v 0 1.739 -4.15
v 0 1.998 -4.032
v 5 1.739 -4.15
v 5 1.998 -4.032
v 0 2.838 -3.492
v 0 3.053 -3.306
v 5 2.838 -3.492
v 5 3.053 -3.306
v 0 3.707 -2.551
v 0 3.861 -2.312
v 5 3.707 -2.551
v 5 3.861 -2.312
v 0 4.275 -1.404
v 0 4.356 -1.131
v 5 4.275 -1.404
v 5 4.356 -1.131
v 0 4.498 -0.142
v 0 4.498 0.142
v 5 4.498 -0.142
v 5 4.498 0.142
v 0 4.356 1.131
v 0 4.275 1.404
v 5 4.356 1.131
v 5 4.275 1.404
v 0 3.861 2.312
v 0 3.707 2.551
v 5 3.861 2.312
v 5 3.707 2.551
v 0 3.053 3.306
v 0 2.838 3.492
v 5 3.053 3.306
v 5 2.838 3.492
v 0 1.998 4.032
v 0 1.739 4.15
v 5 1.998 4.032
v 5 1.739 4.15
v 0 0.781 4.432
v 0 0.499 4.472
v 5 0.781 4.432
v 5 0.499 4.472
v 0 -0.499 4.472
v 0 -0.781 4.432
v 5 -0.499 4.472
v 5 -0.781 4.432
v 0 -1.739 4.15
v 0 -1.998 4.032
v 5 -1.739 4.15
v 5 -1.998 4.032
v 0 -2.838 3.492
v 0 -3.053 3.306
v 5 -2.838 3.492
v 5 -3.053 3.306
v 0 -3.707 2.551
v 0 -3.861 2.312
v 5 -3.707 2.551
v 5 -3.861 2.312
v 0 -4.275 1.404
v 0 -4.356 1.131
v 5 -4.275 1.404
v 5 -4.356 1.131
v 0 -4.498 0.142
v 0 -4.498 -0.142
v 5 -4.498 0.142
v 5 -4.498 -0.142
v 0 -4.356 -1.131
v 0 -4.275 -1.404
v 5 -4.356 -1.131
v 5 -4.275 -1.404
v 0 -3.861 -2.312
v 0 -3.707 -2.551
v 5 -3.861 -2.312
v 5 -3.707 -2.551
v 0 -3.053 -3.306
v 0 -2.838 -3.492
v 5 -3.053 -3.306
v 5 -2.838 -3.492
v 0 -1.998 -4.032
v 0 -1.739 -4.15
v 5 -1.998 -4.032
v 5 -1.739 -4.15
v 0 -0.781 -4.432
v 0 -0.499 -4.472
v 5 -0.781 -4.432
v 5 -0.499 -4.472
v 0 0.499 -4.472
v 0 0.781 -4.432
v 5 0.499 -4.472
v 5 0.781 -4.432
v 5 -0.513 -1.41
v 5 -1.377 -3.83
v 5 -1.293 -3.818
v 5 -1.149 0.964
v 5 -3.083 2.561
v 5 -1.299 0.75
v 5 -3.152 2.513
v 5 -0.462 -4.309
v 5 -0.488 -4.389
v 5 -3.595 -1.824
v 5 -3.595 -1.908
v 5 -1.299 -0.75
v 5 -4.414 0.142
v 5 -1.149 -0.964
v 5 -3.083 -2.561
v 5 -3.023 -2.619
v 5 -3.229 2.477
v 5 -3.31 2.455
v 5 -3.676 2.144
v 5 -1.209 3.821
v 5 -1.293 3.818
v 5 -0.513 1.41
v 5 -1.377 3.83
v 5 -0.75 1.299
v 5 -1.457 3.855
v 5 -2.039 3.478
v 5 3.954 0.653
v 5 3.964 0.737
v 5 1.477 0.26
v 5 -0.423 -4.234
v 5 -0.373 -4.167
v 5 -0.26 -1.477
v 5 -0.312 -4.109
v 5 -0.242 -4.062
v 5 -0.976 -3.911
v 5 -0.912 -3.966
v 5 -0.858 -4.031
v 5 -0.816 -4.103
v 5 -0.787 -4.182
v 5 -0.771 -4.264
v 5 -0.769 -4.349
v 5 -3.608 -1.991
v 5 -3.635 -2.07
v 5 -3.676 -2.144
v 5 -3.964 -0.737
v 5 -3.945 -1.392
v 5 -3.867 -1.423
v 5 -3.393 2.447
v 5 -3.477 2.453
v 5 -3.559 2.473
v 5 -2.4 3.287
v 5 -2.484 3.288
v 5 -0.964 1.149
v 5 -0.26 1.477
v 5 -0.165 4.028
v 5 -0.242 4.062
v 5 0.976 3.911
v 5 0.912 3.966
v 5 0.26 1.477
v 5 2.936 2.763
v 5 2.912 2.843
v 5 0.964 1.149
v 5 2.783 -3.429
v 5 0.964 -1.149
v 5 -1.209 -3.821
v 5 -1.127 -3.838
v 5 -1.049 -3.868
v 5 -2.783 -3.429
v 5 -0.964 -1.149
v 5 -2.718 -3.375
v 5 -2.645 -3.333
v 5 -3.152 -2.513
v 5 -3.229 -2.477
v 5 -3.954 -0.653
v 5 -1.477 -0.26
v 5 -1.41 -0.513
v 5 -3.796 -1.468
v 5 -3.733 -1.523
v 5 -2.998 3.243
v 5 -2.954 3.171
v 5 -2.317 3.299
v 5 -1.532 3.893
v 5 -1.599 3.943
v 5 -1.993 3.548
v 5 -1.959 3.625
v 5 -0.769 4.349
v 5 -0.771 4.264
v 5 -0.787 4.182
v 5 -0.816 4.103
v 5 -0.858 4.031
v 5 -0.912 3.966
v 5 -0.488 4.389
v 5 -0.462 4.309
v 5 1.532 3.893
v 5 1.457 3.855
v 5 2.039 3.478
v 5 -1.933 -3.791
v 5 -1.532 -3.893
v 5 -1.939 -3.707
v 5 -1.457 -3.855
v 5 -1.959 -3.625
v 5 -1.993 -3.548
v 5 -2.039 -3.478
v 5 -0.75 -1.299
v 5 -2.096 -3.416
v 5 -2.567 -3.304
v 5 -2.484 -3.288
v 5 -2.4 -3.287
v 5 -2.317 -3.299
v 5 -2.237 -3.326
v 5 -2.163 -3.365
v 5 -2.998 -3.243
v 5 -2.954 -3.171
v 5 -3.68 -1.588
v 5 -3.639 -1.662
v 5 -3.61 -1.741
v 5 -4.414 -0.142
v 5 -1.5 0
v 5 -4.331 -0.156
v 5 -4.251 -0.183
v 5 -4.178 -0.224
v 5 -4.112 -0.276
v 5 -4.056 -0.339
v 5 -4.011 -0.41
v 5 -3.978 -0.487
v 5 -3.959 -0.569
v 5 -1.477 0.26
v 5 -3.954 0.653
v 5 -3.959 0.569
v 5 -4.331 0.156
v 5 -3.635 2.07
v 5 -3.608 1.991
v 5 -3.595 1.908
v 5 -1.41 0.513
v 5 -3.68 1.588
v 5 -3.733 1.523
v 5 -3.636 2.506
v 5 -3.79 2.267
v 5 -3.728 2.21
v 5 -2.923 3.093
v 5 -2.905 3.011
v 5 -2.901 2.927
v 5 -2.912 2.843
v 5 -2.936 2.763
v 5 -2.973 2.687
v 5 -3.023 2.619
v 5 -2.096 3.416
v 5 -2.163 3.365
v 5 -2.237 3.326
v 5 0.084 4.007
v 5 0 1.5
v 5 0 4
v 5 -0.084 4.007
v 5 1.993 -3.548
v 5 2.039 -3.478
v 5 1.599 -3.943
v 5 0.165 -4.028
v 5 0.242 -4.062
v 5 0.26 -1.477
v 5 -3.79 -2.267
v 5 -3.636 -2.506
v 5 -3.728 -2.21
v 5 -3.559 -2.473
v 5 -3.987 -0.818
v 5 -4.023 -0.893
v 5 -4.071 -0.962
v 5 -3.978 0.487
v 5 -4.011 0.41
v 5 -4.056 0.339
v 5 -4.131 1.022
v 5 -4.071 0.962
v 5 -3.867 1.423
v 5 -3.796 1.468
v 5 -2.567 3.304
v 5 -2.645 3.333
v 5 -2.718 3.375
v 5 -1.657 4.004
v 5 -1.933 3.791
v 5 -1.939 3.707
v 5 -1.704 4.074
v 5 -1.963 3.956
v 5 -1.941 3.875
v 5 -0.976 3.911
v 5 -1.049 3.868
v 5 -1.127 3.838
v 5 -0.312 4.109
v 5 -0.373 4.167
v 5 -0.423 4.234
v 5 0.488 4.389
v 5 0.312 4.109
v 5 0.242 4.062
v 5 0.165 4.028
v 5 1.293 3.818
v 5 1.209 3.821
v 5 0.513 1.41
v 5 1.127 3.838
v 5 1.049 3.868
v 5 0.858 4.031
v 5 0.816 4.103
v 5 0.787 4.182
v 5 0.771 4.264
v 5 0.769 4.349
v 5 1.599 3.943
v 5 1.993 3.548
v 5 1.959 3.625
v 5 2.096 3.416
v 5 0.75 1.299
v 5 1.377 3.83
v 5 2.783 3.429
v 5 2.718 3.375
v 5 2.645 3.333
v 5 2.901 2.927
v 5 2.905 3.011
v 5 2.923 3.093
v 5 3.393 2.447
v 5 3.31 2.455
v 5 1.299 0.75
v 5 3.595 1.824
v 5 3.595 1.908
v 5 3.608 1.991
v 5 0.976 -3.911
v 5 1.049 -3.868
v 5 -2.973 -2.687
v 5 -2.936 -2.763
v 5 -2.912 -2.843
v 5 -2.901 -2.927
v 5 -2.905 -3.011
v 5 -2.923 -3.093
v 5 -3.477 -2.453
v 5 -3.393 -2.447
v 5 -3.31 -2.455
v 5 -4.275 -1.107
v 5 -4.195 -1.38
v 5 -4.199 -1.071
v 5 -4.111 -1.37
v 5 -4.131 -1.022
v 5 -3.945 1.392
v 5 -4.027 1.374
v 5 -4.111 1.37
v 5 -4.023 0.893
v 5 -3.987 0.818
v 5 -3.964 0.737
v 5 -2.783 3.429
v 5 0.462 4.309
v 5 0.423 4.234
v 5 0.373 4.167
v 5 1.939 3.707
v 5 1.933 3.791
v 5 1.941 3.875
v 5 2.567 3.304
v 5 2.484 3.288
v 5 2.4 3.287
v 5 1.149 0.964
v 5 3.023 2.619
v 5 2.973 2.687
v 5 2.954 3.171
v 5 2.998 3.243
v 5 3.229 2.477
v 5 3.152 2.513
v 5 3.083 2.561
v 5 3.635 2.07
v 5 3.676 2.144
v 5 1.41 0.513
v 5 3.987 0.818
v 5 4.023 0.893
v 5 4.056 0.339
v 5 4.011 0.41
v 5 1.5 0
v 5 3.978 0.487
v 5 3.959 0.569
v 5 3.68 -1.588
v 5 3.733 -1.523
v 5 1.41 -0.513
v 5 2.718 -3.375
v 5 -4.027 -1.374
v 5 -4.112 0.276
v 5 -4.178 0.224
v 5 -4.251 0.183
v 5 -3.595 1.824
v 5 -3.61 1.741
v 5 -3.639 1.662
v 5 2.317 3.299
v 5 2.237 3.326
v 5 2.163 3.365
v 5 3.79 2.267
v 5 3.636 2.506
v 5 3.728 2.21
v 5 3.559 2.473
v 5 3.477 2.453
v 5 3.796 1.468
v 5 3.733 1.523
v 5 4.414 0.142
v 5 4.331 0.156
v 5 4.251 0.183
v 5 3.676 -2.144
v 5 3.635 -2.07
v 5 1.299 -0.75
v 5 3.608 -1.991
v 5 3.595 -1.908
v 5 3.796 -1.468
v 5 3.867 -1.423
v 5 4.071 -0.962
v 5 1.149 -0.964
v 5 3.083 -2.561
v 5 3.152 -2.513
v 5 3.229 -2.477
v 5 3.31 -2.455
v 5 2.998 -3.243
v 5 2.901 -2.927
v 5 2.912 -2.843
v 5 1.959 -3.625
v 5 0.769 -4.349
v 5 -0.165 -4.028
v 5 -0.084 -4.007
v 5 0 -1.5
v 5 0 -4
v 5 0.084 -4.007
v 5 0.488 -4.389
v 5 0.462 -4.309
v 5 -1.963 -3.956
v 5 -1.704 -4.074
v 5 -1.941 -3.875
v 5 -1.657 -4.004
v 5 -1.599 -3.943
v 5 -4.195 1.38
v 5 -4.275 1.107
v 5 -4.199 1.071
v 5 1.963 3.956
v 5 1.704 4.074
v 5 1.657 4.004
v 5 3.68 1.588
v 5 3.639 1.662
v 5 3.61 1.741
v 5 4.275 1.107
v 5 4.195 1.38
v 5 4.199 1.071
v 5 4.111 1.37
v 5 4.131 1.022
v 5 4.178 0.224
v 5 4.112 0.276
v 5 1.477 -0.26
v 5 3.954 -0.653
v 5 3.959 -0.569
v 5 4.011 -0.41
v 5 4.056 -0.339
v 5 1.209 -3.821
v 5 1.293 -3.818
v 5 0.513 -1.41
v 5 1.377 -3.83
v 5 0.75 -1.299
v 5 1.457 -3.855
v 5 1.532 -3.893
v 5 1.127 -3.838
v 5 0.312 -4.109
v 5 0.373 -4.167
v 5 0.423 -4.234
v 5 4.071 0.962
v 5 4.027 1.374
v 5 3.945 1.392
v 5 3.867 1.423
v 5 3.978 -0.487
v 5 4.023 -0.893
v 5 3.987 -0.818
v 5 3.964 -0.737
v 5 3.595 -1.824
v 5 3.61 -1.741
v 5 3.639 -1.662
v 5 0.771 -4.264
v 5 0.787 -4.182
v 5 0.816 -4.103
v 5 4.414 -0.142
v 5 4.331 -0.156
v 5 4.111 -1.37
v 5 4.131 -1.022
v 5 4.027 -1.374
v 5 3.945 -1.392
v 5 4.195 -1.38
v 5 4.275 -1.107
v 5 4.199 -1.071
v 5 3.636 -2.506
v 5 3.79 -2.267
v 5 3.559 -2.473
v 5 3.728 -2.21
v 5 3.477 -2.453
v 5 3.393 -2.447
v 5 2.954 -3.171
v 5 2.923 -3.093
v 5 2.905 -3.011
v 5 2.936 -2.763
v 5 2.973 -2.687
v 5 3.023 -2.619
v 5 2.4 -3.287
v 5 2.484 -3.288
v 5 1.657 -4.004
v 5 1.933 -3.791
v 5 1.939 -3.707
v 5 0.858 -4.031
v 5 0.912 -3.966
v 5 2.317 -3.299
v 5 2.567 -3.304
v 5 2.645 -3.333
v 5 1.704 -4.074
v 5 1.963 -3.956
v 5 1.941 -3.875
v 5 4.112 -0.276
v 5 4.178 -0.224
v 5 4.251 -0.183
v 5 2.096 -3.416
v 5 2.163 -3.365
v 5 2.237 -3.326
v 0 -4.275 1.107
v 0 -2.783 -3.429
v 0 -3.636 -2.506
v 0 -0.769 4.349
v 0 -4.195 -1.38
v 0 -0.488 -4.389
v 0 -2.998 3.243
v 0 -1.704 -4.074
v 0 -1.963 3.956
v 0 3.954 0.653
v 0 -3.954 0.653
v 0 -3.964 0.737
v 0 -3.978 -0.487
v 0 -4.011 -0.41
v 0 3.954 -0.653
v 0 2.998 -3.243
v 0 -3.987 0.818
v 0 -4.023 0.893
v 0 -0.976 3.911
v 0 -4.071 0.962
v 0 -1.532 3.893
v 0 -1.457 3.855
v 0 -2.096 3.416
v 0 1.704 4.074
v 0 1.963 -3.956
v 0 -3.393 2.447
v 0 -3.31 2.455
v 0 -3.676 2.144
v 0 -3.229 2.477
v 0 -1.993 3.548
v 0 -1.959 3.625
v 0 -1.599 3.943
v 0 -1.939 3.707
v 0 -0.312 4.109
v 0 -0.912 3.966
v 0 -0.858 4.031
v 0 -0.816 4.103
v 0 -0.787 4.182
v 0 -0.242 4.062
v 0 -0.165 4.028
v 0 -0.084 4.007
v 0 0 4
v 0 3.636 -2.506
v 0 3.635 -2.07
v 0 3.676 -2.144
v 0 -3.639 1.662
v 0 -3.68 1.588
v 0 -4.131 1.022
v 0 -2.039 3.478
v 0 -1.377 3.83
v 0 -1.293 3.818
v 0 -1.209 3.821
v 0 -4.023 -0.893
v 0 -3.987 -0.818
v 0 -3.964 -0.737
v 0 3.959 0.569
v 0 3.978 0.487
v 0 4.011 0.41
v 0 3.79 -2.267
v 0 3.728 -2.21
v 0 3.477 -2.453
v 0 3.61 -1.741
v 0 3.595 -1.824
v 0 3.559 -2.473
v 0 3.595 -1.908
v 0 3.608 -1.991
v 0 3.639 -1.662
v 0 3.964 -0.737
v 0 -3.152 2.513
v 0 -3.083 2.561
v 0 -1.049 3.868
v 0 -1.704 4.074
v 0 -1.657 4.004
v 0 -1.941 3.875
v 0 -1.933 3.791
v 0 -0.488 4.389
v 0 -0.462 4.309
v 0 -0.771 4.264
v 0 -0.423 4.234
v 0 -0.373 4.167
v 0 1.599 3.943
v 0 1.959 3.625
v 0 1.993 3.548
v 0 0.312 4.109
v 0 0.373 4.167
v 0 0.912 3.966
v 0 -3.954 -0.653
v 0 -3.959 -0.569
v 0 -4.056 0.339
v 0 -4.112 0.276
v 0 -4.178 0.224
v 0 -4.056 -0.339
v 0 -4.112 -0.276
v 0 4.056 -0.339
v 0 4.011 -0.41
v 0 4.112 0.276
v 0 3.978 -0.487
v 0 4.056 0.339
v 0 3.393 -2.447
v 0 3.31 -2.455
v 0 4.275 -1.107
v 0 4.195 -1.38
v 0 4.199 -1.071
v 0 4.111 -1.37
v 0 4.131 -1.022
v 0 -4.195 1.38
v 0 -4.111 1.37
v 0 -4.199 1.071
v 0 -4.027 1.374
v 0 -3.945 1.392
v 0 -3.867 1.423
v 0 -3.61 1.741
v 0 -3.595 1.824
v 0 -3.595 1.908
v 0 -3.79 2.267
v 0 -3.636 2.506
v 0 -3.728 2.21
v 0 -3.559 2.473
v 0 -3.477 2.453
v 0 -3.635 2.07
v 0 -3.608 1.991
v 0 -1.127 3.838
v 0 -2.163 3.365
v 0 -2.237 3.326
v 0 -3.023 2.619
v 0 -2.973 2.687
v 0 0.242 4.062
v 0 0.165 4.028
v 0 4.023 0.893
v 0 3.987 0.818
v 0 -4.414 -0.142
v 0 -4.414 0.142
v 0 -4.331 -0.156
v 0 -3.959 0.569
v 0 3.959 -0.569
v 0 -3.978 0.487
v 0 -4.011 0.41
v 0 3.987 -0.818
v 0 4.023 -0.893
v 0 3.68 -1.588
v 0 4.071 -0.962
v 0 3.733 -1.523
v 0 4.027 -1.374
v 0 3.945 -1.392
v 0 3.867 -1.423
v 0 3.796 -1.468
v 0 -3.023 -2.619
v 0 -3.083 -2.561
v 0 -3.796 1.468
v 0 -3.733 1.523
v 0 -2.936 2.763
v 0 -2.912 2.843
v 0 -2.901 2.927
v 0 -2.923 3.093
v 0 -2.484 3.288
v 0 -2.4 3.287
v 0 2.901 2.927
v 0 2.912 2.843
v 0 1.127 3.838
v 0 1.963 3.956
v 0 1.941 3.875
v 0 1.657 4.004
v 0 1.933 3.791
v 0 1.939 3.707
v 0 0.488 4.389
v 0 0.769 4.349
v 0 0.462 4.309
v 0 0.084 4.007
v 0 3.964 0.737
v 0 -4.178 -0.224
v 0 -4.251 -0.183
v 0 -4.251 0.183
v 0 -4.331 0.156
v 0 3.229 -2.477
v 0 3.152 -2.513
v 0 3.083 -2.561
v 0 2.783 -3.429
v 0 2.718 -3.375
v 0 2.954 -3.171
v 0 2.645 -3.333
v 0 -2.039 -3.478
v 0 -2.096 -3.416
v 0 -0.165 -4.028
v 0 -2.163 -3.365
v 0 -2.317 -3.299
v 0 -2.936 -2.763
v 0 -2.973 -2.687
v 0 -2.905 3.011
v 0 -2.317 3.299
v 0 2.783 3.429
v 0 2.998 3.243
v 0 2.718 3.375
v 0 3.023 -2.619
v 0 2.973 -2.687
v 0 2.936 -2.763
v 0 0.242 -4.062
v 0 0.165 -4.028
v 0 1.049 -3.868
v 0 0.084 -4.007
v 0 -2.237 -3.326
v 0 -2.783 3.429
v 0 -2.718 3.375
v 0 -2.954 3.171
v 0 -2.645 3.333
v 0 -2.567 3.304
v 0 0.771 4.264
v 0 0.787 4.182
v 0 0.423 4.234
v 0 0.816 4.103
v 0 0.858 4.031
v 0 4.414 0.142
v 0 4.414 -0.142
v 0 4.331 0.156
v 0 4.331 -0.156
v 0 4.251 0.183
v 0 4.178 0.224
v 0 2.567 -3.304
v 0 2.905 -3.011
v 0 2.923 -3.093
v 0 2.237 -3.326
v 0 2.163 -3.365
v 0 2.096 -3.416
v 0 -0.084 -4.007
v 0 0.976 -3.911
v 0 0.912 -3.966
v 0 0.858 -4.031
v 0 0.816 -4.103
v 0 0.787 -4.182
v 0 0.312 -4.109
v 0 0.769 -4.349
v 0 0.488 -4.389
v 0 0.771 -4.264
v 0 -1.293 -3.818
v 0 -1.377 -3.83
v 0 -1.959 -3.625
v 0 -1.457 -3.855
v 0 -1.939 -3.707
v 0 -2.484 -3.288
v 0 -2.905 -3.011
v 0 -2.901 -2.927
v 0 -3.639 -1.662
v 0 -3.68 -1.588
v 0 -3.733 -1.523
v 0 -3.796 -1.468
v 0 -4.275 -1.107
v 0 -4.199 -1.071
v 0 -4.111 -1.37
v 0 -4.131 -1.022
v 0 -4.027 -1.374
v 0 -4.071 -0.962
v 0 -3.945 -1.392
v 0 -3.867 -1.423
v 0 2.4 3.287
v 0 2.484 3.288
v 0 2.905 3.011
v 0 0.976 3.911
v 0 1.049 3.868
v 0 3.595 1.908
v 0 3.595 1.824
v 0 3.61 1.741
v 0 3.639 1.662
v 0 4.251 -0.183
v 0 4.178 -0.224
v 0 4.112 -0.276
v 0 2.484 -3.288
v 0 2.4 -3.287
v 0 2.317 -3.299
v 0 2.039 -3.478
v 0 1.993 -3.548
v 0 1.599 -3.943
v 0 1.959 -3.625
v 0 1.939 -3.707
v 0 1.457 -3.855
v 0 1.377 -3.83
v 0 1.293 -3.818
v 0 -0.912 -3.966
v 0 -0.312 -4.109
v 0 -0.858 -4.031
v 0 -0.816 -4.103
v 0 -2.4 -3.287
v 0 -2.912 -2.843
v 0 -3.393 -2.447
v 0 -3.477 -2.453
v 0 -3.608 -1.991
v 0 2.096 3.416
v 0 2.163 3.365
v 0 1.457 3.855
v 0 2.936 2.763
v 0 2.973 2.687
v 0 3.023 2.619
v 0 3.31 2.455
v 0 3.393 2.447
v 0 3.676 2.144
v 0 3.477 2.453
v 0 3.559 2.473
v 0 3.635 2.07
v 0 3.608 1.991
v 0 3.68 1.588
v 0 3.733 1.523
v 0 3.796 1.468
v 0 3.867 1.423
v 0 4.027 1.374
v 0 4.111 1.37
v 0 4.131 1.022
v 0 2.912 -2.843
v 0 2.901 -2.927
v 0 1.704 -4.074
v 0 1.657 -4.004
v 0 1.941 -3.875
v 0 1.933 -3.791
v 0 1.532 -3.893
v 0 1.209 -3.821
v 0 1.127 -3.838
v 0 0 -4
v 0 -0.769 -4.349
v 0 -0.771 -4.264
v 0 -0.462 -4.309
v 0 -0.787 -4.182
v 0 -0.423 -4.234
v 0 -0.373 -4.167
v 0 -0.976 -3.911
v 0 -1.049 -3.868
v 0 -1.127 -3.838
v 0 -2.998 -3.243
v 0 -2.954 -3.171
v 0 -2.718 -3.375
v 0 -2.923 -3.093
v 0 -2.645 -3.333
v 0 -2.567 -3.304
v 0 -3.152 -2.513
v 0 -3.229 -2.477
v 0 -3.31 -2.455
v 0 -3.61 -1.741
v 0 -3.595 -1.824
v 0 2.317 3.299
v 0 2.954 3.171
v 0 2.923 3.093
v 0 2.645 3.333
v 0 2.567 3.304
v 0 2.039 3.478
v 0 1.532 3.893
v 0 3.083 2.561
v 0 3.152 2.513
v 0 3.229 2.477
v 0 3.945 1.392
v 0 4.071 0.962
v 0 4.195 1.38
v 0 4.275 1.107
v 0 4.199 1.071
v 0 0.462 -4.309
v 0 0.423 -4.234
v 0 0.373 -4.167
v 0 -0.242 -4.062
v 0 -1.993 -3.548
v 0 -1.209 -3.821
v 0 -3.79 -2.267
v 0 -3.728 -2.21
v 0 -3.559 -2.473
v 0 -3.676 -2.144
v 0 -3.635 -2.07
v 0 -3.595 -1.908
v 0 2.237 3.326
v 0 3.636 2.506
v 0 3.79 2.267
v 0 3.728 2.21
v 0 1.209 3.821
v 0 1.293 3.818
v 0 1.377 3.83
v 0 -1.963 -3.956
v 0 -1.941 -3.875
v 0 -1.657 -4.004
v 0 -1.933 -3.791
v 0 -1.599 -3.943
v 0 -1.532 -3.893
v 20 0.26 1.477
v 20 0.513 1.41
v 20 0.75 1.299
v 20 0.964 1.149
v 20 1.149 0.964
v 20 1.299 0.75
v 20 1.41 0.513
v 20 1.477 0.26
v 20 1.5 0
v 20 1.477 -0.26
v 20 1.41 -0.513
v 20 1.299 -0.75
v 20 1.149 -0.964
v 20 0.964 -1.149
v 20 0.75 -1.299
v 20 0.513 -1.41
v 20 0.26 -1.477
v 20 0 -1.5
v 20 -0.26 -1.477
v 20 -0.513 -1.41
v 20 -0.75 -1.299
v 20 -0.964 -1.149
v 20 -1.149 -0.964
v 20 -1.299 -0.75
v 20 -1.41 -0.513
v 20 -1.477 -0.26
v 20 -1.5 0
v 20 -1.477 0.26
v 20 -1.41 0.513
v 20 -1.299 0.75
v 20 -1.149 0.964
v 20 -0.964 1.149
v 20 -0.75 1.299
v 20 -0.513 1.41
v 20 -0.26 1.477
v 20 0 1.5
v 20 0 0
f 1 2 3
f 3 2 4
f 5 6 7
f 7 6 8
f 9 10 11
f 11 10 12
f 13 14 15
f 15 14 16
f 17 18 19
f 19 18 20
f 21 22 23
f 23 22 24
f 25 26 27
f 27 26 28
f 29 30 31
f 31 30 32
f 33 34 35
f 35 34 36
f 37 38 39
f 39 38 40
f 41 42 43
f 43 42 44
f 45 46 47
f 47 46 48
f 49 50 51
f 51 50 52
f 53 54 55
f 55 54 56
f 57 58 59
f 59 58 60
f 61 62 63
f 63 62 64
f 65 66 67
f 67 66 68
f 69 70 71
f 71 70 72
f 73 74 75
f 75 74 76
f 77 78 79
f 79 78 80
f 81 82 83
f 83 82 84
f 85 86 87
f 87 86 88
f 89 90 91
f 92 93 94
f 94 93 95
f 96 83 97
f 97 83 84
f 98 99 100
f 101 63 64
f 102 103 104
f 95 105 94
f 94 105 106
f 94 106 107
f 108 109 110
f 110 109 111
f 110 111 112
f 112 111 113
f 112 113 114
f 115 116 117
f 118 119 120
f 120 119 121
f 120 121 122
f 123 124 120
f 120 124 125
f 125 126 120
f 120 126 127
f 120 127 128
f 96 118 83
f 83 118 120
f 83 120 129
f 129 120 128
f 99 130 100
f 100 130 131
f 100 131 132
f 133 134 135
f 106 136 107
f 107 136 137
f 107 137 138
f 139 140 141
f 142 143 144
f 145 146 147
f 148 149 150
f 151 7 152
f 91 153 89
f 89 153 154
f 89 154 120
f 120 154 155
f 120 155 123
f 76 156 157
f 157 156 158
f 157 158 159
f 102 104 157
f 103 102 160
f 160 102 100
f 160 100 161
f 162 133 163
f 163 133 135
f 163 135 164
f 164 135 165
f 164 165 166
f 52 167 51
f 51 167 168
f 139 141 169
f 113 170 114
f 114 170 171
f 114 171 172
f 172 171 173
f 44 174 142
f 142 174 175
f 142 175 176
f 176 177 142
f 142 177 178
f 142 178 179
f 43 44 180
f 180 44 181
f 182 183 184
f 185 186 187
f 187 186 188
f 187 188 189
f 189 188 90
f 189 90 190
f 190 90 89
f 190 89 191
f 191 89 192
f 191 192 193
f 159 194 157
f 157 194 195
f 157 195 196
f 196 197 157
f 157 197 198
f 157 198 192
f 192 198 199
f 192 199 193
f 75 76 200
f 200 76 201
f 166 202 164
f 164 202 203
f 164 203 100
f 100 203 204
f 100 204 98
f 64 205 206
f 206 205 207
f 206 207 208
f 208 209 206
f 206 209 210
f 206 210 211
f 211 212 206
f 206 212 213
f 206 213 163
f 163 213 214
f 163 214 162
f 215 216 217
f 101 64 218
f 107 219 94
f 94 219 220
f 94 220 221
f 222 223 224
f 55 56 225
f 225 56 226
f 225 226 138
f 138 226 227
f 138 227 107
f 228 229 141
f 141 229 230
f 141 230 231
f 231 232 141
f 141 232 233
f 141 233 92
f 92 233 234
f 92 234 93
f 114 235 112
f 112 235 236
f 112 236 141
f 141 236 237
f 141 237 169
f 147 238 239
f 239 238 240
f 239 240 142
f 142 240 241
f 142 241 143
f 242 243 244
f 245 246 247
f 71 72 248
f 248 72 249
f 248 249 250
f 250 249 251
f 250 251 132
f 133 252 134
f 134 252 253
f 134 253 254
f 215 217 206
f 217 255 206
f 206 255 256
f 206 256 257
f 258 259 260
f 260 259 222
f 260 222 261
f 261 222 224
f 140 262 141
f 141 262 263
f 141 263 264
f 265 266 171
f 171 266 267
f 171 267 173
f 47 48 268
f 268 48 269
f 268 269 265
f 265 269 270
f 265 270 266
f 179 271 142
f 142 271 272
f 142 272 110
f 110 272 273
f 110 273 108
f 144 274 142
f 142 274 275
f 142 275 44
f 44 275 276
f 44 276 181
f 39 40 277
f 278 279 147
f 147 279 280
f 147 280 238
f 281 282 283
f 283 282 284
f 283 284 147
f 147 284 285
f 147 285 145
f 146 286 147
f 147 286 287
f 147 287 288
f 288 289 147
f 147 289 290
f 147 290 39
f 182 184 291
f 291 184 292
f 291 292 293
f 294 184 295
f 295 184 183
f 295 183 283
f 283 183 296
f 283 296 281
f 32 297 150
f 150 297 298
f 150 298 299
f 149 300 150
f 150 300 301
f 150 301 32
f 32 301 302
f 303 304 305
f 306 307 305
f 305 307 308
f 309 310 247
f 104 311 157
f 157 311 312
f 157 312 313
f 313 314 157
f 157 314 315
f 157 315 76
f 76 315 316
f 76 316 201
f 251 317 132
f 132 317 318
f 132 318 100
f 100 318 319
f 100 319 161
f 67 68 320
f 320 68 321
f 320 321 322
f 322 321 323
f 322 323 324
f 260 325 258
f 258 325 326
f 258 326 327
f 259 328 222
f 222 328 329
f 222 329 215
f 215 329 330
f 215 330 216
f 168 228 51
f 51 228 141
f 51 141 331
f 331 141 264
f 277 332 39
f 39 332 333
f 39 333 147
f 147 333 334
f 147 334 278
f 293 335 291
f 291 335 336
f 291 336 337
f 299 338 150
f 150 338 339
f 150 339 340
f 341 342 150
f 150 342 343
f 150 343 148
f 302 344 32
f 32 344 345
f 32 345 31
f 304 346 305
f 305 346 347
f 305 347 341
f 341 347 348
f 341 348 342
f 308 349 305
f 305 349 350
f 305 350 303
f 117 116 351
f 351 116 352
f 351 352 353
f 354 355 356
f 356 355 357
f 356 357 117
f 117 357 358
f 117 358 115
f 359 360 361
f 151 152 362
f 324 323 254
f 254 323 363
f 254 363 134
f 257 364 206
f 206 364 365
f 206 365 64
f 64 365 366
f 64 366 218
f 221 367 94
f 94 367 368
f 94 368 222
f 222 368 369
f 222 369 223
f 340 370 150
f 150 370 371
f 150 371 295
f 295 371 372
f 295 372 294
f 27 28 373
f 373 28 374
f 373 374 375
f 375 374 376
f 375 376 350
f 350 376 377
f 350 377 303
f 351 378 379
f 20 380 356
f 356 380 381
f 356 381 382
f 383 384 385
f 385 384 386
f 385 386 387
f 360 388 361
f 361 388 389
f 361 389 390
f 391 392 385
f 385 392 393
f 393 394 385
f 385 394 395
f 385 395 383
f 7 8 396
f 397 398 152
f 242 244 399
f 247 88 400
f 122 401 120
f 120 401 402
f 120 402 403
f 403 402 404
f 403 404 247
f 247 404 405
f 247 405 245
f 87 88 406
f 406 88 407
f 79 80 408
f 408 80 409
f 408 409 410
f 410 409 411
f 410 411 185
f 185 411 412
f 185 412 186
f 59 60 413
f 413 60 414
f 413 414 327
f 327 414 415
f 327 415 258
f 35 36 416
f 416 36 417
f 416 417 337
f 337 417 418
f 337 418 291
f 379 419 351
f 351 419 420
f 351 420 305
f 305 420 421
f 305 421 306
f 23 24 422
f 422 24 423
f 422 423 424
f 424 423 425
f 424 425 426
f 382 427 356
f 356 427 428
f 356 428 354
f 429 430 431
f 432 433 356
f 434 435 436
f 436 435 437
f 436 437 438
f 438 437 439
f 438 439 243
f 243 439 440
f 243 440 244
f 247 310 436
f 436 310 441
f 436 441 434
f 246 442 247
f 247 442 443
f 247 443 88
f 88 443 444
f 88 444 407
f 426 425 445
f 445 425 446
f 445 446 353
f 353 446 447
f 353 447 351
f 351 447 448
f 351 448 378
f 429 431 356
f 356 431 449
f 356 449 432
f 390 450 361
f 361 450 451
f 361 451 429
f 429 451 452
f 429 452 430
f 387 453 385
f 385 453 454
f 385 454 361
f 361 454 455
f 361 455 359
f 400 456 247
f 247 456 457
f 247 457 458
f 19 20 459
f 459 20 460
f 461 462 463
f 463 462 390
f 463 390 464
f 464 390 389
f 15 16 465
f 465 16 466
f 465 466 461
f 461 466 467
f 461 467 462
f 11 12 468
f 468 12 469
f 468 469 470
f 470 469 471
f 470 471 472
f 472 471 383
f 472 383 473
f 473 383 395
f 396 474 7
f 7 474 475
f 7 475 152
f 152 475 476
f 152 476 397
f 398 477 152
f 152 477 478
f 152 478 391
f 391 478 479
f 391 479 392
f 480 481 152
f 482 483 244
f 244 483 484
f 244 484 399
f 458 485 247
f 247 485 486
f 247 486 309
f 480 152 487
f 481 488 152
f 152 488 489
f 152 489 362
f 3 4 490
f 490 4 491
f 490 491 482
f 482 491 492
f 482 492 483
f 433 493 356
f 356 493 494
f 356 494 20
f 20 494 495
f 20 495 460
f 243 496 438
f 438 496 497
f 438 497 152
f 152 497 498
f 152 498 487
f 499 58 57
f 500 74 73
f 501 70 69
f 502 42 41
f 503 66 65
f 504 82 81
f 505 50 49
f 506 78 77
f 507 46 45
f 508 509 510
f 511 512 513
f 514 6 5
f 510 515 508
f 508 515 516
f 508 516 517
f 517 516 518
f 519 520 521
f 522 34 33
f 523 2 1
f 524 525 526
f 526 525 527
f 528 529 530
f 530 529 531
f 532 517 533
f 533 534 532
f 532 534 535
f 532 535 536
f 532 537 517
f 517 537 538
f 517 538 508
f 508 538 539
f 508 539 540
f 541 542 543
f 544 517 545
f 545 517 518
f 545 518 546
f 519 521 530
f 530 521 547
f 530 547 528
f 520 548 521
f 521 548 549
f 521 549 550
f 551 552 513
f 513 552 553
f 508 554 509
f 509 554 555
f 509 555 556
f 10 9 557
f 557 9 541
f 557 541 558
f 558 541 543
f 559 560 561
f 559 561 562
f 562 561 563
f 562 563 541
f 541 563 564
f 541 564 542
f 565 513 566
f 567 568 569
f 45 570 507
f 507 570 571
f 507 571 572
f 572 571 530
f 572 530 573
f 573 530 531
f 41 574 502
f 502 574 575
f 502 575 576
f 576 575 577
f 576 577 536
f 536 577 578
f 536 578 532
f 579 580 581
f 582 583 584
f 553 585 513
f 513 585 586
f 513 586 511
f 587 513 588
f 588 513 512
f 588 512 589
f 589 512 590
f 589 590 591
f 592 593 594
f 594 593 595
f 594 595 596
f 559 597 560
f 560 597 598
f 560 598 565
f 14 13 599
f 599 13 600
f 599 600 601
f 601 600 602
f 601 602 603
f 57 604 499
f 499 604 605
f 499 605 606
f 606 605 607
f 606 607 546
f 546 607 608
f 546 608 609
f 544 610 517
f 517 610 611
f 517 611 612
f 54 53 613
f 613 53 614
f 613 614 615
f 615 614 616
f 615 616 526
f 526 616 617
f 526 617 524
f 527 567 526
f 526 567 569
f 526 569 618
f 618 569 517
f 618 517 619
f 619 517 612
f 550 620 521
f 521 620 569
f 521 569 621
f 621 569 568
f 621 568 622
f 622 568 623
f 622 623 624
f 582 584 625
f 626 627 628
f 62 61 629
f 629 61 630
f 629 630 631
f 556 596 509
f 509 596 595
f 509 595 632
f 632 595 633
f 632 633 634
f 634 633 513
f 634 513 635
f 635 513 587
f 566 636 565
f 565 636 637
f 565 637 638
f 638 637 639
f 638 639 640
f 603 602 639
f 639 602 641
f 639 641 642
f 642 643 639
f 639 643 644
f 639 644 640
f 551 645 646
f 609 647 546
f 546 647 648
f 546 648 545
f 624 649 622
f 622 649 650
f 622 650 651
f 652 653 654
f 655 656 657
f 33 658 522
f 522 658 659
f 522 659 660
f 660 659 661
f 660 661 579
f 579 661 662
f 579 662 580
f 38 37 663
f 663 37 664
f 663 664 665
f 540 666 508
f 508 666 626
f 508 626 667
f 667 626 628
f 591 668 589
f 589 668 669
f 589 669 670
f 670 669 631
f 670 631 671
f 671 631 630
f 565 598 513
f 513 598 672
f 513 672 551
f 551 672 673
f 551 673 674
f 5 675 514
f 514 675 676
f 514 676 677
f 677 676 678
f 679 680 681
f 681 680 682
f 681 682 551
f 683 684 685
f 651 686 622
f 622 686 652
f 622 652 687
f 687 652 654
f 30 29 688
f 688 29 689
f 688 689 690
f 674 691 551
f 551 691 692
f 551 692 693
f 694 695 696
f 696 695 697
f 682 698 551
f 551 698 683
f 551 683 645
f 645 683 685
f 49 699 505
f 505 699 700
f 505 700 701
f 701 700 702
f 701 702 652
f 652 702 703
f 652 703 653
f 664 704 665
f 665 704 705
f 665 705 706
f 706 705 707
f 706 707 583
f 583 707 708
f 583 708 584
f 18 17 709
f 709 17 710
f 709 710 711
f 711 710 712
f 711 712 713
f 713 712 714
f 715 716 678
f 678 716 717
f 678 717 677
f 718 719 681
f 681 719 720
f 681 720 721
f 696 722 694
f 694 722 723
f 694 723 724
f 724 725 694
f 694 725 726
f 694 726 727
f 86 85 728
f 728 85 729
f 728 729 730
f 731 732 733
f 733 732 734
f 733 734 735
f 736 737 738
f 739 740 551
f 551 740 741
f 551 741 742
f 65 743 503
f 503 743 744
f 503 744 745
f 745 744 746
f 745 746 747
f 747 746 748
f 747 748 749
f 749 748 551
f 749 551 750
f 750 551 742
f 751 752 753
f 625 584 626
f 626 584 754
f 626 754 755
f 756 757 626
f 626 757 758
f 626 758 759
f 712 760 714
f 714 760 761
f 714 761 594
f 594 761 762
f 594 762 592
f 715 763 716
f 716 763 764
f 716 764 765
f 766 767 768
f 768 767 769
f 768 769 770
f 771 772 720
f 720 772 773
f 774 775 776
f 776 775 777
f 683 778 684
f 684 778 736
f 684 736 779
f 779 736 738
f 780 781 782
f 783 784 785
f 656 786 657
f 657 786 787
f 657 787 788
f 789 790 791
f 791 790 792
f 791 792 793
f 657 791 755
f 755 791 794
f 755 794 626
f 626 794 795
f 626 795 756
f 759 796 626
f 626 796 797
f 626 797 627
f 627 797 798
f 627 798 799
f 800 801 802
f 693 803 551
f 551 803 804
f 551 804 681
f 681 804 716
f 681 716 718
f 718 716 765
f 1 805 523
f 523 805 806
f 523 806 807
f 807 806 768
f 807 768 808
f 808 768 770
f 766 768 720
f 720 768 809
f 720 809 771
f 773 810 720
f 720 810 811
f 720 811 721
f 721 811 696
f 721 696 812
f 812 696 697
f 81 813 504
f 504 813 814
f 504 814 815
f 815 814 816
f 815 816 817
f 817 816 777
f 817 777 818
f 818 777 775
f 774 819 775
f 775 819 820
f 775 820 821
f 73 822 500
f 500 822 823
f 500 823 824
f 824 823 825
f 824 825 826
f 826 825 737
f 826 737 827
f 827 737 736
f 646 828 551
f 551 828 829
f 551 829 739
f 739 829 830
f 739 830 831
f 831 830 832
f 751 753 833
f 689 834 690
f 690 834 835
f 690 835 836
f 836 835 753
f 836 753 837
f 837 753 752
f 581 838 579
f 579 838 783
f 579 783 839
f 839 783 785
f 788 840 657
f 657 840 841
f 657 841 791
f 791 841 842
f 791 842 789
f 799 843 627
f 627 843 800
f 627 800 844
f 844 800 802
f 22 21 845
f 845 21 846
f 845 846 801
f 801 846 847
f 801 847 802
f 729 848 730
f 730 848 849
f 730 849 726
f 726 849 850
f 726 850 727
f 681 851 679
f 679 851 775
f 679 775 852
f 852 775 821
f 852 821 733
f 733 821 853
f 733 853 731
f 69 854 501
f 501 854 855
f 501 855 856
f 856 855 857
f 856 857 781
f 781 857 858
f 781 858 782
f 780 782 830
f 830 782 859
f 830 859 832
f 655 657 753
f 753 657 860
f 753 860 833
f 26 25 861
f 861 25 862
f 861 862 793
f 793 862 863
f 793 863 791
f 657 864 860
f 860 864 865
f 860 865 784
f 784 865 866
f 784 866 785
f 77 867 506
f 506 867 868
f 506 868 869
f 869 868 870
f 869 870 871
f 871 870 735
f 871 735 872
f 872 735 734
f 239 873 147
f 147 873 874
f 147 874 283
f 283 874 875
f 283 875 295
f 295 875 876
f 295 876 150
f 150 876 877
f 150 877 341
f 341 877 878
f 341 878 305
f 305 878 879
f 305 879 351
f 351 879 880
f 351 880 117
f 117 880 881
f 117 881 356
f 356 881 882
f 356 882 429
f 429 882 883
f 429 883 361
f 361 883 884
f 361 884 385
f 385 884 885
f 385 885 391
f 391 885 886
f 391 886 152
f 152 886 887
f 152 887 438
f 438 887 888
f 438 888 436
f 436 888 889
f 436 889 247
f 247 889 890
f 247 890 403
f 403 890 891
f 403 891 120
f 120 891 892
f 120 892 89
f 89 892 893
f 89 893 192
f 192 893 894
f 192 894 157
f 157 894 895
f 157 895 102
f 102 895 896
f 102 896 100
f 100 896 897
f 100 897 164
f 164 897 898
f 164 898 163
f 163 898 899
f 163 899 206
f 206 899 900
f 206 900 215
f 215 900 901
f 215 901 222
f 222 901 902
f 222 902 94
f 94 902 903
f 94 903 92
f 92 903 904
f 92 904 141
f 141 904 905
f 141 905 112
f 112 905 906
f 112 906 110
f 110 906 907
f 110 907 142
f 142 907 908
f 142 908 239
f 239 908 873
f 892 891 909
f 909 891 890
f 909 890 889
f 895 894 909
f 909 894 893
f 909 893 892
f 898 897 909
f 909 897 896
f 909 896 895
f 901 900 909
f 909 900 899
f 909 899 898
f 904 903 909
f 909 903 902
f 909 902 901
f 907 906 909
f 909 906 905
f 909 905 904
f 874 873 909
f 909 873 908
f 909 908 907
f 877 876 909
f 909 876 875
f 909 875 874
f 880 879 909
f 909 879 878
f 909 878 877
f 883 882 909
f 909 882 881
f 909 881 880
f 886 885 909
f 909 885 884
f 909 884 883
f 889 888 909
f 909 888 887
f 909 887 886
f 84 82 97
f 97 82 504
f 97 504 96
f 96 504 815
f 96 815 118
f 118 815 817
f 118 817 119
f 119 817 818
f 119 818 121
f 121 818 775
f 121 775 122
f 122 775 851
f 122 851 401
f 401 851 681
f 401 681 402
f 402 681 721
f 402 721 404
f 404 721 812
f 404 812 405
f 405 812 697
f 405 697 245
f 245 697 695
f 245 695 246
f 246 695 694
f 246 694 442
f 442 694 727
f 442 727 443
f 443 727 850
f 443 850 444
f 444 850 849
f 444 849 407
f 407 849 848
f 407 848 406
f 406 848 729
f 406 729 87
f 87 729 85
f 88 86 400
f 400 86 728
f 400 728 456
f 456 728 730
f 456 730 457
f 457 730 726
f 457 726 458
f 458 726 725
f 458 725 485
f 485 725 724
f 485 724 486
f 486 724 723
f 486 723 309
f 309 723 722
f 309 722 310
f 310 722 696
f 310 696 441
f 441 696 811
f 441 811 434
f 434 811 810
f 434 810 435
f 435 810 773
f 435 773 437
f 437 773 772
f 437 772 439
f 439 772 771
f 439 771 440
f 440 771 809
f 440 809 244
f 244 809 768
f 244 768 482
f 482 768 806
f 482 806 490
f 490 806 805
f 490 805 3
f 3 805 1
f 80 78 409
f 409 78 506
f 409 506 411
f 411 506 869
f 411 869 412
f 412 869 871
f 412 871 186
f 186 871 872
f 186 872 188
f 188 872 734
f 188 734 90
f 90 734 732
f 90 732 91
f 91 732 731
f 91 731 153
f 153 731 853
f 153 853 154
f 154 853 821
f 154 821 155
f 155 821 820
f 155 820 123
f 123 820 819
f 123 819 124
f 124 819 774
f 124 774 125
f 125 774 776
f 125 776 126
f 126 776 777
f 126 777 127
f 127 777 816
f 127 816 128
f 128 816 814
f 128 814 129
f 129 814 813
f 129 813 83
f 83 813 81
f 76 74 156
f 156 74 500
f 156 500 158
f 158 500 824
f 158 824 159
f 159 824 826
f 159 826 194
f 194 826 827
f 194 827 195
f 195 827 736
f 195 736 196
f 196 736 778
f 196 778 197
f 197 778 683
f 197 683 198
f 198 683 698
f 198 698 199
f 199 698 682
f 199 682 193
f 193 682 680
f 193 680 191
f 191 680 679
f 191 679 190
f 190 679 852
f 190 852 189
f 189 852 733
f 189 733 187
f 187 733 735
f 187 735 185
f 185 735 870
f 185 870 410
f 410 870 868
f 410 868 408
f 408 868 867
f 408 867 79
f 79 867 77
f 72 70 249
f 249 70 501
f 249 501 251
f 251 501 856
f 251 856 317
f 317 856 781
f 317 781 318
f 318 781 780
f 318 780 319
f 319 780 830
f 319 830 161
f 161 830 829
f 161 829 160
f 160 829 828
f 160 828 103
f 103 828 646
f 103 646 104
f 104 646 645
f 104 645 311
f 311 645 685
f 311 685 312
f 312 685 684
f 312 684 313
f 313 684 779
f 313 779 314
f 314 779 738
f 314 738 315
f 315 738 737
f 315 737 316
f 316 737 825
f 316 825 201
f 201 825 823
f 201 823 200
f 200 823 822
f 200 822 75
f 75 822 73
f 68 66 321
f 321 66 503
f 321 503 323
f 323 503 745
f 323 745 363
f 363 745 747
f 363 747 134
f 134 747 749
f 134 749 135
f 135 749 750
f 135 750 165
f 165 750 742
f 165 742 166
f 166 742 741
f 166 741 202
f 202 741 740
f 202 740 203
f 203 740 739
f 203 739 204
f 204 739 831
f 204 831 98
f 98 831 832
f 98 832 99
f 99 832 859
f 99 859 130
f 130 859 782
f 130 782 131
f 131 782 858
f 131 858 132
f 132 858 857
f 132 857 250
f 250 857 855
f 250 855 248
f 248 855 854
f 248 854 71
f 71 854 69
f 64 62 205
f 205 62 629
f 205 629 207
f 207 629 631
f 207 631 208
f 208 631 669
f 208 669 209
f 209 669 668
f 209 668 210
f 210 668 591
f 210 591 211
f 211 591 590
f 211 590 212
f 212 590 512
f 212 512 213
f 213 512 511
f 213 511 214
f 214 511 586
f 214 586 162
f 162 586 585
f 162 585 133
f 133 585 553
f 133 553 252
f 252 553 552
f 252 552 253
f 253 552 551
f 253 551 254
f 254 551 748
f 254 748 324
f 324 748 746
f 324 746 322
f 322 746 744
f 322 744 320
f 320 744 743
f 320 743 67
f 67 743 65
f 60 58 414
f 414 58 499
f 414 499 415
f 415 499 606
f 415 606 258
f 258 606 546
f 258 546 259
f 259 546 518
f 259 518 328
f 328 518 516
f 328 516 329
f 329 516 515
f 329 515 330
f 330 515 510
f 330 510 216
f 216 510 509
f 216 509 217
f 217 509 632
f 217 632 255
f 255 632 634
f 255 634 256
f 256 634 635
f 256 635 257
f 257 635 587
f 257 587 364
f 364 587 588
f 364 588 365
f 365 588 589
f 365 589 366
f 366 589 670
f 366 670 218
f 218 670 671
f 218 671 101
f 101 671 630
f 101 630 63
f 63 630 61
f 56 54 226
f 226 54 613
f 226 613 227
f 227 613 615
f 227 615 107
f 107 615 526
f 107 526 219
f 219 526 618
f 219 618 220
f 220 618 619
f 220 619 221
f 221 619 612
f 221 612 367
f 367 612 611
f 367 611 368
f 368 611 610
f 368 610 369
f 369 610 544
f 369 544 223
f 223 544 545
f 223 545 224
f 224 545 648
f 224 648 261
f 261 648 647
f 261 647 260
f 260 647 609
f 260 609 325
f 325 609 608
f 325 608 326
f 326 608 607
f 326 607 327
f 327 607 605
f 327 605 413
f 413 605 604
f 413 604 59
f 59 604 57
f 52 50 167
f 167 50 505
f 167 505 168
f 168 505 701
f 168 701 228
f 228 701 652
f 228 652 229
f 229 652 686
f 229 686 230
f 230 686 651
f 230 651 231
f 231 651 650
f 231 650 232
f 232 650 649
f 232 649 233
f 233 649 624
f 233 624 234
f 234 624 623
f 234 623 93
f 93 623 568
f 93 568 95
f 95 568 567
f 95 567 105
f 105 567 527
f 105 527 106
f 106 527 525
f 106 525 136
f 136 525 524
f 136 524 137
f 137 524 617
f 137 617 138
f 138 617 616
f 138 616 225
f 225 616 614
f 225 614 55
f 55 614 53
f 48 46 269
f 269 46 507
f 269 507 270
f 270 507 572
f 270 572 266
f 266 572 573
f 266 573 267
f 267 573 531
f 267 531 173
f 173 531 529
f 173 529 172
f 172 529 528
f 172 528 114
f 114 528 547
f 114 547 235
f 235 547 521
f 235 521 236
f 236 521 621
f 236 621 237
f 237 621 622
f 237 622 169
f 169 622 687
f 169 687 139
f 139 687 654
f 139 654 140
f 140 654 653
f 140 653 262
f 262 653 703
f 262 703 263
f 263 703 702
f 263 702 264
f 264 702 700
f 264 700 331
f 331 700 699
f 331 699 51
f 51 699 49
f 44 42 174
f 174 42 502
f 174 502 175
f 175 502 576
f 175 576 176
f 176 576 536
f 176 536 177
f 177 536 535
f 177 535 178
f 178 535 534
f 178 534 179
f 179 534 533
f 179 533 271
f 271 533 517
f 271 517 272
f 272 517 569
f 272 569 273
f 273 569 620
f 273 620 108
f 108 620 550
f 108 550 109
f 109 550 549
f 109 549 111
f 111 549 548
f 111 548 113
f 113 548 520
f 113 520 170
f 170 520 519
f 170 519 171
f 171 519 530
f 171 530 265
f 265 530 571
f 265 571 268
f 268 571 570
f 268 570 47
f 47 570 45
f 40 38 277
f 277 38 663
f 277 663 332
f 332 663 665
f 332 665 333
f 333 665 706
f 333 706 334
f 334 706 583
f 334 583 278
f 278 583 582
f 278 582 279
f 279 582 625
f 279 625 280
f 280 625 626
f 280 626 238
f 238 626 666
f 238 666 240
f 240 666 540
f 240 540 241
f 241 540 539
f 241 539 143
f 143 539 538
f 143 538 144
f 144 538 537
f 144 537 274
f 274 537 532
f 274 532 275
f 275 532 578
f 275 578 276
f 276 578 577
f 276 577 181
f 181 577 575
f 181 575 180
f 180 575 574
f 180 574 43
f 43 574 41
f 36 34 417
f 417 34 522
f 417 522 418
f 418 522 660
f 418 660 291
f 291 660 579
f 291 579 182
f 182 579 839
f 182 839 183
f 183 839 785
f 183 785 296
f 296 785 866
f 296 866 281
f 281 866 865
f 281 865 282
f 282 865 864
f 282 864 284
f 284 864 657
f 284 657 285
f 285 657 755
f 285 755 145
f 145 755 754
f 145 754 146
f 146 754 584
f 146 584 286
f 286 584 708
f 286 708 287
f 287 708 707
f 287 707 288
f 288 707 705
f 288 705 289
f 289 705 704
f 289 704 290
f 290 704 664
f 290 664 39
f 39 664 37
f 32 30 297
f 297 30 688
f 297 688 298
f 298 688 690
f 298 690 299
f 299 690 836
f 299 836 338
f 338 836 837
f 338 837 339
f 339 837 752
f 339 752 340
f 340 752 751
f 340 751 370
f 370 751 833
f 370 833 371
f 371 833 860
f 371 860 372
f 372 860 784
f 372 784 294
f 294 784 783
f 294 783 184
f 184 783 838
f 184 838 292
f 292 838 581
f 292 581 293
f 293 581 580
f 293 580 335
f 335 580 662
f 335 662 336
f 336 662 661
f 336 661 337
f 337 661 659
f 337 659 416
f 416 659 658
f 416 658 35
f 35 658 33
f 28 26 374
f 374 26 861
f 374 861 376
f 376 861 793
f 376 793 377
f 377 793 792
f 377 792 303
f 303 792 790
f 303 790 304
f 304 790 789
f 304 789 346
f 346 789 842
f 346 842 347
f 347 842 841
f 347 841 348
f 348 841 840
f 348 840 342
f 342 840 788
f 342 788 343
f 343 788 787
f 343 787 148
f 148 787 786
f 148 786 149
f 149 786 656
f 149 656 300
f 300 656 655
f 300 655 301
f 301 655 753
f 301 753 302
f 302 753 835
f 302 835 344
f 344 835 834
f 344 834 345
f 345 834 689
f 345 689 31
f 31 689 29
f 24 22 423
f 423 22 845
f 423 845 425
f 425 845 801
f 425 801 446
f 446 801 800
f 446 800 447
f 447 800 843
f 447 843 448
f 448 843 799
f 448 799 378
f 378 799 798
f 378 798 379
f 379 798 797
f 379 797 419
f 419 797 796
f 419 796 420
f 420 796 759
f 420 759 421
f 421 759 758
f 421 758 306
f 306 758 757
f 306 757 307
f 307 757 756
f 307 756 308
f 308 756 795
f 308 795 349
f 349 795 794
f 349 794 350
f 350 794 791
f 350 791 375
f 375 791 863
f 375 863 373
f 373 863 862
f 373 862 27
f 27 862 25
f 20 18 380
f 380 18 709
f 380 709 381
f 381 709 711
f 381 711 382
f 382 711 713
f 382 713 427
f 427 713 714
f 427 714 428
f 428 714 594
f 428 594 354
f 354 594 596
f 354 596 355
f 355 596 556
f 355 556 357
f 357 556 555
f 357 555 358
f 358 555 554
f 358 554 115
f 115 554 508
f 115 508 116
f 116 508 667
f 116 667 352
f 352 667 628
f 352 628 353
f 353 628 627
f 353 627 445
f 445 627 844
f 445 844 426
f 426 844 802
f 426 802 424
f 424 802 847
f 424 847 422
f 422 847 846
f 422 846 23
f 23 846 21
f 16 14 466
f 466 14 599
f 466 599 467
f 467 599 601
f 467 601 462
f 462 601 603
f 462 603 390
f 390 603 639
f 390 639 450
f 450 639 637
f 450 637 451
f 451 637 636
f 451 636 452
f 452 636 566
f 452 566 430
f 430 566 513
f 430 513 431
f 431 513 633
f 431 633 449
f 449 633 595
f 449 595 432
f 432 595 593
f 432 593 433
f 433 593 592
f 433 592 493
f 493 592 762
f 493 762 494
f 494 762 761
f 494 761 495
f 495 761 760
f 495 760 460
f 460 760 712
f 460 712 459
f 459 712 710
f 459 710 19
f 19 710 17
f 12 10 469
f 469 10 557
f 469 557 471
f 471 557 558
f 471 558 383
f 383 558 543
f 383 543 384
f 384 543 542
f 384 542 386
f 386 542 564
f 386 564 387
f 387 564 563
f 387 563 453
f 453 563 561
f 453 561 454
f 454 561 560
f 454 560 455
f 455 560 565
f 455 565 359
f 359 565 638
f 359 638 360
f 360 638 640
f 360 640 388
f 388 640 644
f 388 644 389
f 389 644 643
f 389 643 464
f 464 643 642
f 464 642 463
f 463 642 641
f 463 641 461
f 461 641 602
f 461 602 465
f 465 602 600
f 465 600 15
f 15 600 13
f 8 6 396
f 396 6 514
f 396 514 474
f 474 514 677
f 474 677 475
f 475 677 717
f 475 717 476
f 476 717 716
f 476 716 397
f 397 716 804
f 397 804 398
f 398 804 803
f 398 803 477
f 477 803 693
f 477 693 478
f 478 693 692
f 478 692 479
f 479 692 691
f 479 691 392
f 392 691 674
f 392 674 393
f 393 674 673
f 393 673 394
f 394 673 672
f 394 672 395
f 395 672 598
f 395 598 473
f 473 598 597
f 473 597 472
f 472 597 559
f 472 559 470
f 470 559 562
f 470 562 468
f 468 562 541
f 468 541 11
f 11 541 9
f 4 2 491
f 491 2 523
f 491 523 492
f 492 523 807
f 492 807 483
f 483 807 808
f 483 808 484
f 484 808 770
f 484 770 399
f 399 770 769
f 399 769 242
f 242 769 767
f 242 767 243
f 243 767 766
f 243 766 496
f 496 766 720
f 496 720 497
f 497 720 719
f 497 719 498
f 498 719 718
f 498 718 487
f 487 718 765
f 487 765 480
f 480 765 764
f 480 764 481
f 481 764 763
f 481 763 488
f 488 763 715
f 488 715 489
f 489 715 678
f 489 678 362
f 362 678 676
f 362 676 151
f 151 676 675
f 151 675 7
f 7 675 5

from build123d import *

# Parameters (mm, degrees)
SKETCH1_R           = 4.5
BOSS_EXTRUDE1_DEPTH = 5
SKETCH2_R           = 1.5
BOSS_EXTRUDE2_DEPTH = 20
SKETCH3_R           = 0.5
CUT_EXTRUDE2_DEPTH  = 5
CIRPATTERN1_COUNT   = 22


with BuildPart() as part:
    # Sketch1 → Boss-Extrude1 (new body)
    with BuildSketch(Plane(origin=(0, 0, 0), x_dir=(0, 0, -1), z_dir=(1, 0, 0))):
        Circle(SKETCH1_R)
    extrude(amount=BOSS_EXTRUDE1_DEPTH)

    # Sketch2 → Boss-Extrude2 (add)
    with BuildSketch(Plane(origin=(0, 0, 0), x_dir=(0, 0, -1), z_dir=(1, 0, 0))):
        Circle(SKETCH2_R)
    extrude(amount=BOSS_EXTRUDE2_DEPTH)

    # Sketch3 → Cut-Extrude2 (cut, symmetric)
    with BuildSketch(Plane(origin=(0, 0, 0), x_dir=(0, 0, -1), z_dir=(1, 0, 0))):
        with Locations((4.5, 0)):
            Circle(SKETCH3_R)
    cut_extrude2 = extrude(amount=CUT_EXTRUDE2_DEPTH, both=True, mode=Mode.SUBTRACT)

    # CirPattern1: Cut-Extrude2 ×22 about axis
    cirpattern1_axis = Axis((-1, 0, 0), (1, 0, 0))
    for i in range(1, CIRPATTERN1_COUNT):
        add(cut_extrude2.rotate(cirpattern1_axis, i * 360 / CIRPATTERN1_COUNT), mode=Mode.SUBTRACT)


solid = part.part
